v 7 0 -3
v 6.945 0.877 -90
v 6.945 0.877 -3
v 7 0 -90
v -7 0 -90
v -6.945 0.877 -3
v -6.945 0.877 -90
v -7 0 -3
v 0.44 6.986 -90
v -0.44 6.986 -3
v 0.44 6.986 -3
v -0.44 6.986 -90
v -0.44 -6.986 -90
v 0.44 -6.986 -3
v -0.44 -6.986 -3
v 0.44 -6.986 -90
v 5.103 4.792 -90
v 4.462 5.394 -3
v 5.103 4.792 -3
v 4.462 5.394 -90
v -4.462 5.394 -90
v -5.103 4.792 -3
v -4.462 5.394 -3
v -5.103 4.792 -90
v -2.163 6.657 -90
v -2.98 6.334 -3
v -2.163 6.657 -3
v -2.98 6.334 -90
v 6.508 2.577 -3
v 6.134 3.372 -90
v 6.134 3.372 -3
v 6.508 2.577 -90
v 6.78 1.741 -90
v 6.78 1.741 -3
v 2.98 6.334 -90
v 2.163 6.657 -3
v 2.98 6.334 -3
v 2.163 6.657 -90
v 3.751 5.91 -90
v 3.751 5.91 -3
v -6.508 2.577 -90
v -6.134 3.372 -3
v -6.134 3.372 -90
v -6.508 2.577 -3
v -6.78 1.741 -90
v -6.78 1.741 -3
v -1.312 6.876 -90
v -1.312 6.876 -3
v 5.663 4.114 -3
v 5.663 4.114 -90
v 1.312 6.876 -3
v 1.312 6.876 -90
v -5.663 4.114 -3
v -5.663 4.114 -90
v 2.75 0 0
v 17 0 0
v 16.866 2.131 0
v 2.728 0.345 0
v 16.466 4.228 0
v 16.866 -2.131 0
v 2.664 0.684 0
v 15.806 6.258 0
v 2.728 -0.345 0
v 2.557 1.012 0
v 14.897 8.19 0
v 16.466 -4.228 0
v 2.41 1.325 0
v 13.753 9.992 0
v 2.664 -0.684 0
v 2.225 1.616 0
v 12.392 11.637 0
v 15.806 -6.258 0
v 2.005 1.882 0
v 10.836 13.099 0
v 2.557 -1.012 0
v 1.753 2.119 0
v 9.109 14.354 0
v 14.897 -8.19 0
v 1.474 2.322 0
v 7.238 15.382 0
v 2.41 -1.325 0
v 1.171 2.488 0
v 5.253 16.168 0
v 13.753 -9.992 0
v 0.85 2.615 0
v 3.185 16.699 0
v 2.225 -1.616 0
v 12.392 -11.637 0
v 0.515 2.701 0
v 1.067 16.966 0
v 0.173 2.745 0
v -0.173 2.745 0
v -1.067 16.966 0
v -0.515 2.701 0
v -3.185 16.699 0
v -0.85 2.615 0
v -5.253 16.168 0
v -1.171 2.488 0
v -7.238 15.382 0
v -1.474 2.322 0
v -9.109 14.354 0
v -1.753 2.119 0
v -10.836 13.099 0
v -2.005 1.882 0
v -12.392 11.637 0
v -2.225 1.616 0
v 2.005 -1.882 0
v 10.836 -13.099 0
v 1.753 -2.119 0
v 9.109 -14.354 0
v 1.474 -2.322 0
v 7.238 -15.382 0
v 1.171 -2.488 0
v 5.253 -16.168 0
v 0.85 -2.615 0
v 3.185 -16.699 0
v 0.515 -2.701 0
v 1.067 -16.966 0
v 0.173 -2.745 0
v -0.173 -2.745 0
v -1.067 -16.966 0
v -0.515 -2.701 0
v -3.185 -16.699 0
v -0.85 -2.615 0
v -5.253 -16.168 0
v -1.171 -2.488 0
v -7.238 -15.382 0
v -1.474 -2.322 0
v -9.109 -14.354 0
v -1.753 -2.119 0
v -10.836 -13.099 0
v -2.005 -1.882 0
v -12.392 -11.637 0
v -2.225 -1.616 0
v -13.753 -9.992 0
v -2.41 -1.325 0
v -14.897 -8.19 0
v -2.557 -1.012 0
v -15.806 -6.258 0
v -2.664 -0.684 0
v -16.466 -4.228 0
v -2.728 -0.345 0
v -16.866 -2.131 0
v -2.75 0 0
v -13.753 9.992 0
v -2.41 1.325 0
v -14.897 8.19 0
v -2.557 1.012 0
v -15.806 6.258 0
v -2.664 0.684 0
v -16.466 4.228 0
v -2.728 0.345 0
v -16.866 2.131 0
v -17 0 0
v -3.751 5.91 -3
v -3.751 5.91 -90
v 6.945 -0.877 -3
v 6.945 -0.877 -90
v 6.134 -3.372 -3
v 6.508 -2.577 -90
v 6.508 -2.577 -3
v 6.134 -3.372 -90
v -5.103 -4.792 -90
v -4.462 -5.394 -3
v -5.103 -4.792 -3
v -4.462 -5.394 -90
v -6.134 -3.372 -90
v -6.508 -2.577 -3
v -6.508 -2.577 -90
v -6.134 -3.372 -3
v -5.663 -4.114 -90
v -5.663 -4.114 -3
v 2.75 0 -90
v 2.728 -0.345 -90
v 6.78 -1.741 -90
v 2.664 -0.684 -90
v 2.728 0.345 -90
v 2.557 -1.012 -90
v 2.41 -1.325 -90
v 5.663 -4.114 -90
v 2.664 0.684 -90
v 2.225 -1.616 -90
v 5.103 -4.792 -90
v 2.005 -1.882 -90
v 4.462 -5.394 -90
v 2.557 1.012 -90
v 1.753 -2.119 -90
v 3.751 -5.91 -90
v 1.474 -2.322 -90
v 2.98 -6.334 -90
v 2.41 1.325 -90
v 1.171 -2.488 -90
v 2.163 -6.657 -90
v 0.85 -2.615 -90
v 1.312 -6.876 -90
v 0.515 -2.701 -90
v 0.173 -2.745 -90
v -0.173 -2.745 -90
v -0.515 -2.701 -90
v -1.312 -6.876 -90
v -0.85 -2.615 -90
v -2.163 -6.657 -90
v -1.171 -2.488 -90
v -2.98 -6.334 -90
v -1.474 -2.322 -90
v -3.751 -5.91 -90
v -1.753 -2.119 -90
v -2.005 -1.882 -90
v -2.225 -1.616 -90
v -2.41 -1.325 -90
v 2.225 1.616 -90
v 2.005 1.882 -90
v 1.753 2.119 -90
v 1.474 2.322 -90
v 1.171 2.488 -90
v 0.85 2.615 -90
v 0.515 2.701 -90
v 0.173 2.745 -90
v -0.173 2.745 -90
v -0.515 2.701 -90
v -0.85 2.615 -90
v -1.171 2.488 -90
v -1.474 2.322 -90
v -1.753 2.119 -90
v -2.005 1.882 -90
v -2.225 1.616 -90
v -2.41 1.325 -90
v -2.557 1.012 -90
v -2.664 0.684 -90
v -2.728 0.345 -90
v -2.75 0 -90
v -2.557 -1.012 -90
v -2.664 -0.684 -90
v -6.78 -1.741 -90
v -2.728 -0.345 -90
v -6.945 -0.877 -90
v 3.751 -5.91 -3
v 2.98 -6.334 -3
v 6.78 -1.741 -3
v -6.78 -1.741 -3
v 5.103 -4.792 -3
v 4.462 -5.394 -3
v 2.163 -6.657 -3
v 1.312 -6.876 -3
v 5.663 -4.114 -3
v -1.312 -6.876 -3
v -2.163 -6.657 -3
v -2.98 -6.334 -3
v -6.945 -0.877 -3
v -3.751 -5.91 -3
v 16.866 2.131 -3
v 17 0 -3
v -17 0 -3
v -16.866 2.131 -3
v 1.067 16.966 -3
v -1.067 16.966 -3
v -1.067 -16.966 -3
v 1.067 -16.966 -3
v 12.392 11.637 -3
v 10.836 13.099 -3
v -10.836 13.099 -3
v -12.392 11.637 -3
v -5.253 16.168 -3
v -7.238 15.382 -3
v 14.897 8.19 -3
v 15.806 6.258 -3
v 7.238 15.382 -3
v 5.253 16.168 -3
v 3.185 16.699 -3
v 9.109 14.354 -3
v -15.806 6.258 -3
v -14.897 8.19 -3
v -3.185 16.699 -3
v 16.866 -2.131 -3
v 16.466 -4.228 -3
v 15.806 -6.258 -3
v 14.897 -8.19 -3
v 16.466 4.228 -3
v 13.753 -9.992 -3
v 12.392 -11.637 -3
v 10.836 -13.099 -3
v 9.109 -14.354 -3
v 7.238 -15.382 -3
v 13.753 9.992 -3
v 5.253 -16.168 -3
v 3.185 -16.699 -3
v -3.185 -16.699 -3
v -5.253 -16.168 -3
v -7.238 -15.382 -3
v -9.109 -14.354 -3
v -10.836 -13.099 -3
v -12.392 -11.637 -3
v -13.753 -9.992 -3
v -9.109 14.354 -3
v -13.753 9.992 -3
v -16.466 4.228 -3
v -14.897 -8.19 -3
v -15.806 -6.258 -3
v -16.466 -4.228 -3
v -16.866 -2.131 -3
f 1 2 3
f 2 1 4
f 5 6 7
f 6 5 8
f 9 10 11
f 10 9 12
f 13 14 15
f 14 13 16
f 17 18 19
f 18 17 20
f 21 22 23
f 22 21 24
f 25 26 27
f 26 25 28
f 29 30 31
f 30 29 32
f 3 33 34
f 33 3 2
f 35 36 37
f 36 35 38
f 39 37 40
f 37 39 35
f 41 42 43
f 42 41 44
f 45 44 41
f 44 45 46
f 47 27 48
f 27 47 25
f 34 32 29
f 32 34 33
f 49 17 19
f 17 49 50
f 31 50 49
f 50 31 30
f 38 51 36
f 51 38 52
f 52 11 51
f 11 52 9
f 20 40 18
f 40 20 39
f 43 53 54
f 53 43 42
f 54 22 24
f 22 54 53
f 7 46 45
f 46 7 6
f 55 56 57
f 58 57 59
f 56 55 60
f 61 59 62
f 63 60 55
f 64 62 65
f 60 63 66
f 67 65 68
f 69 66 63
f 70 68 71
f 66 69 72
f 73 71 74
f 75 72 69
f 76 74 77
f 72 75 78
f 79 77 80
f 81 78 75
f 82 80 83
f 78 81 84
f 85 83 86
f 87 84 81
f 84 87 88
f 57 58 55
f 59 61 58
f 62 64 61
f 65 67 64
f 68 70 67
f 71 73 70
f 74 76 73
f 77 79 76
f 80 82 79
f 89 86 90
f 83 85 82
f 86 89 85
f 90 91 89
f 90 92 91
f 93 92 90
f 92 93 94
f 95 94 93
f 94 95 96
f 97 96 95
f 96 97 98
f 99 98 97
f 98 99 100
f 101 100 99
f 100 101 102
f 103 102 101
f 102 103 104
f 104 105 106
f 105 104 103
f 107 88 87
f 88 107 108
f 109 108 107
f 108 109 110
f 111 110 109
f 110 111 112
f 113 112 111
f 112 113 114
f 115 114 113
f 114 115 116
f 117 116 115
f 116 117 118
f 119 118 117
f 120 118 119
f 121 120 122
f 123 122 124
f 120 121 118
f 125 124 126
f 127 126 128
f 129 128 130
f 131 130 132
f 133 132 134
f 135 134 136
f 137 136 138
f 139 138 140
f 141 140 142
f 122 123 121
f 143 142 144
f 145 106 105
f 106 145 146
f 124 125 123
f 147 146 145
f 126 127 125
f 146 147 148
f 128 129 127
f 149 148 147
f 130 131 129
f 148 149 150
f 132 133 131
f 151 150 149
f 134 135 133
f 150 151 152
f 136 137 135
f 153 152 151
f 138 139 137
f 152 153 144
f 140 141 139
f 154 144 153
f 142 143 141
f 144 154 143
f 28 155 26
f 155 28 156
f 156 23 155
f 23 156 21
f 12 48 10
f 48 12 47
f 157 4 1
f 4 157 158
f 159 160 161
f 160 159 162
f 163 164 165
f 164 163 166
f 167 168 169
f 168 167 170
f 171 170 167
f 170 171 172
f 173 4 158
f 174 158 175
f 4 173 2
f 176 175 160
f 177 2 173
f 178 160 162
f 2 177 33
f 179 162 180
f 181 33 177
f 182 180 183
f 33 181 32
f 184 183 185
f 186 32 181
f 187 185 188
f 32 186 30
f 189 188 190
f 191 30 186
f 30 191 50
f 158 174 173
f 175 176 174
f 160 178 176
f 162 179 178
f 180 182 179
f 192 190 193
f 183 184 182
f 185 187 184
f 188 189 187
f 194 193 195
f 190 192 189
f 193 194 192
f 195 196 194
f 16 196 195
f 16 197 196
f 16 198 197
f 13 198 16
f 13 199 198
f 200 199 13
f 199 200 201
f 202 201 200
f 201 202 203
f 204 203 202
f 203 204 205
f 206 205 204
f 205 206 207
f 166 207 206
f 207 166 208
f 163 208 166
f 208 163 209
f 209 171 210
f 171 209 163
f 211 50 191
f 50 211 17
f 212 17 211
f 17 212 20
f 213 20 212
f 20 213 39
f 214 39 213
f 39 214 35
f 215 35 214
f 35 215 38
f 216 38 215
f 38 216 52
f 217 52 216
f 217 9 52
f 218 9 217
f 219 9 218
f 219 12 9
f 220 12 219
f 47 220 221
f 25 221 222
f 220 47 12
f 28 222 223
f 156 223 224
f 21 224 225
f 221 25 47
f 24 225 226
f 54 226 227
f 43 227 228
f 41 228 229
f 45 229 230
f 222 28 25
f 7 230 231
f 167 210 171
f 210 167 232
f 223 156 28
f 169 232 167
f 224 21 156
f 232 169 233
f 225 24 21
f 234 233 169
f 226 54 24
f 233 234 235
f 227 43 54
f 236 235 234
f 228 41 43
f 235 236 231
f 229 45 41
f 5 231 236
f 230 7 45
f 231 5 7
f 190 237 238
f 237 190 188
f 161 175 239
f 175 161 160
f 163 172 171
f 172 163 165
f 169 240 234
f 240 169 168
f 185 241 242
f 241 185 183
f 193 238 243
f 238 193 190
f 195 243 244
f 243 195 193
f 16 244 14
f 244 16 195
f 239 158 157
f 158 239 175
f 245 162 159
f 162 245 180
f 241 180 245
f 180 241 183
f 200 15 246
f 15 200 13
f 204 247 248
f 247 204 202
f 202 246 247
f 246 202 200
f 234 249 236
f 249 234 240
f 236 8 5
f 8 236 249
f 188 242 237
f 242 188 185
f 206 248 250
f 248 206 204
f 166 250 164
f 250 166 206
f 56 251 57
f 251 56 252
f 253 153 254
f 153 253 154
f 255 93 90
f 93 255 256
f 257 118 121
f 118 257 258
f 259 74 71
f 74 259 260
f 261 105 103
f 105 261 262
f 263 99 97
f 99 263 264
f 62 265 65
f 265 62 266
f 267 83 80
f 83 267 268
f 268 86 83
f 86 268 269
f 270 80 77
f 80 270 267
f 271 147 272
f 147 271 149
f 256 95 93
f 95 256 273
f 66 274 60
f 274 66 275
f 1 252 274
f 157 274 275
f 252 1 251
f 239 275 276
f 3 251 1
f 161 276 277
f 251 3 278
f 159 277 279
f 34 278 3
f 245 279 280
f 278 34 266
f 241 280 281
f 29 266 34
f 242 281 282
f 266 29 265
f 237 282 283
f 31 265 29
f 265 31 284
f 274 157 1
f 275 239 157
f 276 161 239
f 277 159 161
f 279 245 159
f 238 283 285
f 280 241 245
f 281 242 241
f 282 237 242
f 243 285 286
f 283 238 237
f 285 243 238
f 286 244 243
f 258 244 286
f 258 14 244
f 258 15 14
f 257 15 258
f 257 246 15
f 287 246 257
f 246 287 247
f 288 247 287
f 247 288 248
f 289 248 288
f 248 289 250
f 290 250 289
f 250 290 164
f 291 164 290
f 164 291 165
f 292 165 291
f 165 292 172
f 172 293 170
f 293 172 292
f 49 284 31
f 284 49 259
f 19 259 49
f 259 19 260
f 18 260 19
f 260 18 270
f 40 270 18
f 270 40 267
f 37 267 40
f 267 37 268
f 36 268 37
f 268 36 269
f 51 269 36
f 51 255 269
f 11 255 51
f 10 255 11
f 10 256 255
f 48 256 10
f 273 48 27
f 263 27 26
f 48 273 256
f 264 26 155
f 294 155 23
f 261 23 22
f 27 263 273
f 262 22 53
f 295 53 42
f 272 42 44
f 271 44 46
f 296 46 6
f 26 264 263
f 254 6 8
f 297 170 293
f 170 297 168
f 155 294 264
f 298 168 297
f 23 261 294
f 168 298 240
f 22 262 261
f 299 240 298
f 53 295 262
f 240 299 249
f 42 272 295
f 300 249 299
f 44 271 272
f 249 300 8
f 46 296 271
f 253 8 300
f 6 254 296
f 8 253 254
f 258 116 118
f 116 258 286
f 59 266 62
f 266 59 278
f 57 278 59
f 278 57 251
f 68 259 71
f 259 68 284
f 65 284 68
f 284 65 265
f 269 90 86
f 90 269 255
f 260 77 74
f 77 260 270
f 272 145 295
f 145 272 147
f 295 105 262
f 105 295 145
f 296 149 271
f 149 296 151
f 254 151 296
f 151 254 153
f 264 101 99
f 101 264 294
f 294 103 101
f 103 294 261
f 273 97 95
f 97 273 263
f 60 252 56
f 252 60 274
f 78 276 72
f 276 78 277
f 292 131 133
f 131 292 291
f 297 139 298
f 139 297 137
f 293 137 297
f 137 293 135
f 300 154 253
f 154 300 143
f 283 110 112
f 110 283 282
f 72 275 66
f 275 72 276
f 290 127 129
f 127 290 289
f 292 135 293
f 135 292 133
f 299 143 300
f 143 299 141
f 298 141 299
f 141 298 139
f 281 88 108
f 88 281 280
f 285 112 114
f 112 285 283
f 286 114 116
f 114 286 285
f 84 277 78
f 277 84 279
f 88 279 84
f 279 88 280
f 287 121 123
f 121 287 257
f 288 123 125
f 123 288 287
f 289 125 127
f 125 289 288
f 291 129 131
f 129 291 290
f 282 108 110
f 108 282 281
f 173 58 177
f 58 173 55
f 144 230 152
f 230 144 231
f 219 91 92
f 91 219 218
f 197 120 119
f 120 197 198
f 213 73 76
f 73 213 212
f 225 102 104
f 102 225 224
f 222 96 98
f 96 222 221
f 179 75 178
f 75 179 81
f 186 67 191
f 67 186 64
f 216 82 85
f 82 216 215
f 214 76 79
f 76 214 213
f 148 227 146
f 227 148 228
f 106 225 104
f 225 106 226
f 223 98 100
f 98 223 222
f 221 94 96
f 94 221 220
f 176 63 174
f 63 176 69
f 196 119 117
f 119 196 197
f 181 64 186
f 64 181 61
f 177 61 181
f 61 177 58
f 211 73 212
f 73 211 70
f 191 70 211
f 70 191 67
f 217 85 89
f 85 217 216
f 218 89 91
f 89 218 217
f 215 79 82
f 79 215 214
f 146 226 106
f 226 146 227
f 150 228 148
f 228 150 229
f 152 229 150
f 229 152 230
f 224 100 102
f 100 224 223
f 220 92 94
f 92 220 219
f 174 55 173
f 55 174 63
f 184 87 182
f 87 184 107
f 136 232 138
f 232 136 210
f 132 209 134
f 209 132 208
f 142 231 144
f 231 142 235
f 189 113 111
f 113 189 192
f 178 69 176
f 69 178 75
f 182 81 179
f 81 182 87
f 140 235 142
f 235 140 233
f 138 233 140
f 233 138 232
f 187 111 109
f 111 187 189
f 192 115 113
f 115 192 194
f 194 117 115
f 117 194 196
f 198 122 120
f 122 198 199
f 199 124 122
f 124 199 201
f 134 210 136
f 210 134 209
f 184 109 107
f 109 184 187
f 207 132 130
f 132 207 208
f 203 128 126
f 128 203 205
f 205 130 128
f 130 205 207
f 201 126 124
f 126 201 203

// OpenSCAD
$fn = 50;


difference() {
	union() {
		translate(v = [0, 0, -90.0000000000]) {
			cylinder(h = 90, r = 7.0000000000);
		}
		translate(v = [0, 0, -3.0000000000]) {
			cylinder(h = 3, r = 17.0000000000);
		}
	}
	union() {
		#translate(v = [0, 0, -90]) {
			cylinder(h = 90, r = 2.7500000000);
		}
	}
}
